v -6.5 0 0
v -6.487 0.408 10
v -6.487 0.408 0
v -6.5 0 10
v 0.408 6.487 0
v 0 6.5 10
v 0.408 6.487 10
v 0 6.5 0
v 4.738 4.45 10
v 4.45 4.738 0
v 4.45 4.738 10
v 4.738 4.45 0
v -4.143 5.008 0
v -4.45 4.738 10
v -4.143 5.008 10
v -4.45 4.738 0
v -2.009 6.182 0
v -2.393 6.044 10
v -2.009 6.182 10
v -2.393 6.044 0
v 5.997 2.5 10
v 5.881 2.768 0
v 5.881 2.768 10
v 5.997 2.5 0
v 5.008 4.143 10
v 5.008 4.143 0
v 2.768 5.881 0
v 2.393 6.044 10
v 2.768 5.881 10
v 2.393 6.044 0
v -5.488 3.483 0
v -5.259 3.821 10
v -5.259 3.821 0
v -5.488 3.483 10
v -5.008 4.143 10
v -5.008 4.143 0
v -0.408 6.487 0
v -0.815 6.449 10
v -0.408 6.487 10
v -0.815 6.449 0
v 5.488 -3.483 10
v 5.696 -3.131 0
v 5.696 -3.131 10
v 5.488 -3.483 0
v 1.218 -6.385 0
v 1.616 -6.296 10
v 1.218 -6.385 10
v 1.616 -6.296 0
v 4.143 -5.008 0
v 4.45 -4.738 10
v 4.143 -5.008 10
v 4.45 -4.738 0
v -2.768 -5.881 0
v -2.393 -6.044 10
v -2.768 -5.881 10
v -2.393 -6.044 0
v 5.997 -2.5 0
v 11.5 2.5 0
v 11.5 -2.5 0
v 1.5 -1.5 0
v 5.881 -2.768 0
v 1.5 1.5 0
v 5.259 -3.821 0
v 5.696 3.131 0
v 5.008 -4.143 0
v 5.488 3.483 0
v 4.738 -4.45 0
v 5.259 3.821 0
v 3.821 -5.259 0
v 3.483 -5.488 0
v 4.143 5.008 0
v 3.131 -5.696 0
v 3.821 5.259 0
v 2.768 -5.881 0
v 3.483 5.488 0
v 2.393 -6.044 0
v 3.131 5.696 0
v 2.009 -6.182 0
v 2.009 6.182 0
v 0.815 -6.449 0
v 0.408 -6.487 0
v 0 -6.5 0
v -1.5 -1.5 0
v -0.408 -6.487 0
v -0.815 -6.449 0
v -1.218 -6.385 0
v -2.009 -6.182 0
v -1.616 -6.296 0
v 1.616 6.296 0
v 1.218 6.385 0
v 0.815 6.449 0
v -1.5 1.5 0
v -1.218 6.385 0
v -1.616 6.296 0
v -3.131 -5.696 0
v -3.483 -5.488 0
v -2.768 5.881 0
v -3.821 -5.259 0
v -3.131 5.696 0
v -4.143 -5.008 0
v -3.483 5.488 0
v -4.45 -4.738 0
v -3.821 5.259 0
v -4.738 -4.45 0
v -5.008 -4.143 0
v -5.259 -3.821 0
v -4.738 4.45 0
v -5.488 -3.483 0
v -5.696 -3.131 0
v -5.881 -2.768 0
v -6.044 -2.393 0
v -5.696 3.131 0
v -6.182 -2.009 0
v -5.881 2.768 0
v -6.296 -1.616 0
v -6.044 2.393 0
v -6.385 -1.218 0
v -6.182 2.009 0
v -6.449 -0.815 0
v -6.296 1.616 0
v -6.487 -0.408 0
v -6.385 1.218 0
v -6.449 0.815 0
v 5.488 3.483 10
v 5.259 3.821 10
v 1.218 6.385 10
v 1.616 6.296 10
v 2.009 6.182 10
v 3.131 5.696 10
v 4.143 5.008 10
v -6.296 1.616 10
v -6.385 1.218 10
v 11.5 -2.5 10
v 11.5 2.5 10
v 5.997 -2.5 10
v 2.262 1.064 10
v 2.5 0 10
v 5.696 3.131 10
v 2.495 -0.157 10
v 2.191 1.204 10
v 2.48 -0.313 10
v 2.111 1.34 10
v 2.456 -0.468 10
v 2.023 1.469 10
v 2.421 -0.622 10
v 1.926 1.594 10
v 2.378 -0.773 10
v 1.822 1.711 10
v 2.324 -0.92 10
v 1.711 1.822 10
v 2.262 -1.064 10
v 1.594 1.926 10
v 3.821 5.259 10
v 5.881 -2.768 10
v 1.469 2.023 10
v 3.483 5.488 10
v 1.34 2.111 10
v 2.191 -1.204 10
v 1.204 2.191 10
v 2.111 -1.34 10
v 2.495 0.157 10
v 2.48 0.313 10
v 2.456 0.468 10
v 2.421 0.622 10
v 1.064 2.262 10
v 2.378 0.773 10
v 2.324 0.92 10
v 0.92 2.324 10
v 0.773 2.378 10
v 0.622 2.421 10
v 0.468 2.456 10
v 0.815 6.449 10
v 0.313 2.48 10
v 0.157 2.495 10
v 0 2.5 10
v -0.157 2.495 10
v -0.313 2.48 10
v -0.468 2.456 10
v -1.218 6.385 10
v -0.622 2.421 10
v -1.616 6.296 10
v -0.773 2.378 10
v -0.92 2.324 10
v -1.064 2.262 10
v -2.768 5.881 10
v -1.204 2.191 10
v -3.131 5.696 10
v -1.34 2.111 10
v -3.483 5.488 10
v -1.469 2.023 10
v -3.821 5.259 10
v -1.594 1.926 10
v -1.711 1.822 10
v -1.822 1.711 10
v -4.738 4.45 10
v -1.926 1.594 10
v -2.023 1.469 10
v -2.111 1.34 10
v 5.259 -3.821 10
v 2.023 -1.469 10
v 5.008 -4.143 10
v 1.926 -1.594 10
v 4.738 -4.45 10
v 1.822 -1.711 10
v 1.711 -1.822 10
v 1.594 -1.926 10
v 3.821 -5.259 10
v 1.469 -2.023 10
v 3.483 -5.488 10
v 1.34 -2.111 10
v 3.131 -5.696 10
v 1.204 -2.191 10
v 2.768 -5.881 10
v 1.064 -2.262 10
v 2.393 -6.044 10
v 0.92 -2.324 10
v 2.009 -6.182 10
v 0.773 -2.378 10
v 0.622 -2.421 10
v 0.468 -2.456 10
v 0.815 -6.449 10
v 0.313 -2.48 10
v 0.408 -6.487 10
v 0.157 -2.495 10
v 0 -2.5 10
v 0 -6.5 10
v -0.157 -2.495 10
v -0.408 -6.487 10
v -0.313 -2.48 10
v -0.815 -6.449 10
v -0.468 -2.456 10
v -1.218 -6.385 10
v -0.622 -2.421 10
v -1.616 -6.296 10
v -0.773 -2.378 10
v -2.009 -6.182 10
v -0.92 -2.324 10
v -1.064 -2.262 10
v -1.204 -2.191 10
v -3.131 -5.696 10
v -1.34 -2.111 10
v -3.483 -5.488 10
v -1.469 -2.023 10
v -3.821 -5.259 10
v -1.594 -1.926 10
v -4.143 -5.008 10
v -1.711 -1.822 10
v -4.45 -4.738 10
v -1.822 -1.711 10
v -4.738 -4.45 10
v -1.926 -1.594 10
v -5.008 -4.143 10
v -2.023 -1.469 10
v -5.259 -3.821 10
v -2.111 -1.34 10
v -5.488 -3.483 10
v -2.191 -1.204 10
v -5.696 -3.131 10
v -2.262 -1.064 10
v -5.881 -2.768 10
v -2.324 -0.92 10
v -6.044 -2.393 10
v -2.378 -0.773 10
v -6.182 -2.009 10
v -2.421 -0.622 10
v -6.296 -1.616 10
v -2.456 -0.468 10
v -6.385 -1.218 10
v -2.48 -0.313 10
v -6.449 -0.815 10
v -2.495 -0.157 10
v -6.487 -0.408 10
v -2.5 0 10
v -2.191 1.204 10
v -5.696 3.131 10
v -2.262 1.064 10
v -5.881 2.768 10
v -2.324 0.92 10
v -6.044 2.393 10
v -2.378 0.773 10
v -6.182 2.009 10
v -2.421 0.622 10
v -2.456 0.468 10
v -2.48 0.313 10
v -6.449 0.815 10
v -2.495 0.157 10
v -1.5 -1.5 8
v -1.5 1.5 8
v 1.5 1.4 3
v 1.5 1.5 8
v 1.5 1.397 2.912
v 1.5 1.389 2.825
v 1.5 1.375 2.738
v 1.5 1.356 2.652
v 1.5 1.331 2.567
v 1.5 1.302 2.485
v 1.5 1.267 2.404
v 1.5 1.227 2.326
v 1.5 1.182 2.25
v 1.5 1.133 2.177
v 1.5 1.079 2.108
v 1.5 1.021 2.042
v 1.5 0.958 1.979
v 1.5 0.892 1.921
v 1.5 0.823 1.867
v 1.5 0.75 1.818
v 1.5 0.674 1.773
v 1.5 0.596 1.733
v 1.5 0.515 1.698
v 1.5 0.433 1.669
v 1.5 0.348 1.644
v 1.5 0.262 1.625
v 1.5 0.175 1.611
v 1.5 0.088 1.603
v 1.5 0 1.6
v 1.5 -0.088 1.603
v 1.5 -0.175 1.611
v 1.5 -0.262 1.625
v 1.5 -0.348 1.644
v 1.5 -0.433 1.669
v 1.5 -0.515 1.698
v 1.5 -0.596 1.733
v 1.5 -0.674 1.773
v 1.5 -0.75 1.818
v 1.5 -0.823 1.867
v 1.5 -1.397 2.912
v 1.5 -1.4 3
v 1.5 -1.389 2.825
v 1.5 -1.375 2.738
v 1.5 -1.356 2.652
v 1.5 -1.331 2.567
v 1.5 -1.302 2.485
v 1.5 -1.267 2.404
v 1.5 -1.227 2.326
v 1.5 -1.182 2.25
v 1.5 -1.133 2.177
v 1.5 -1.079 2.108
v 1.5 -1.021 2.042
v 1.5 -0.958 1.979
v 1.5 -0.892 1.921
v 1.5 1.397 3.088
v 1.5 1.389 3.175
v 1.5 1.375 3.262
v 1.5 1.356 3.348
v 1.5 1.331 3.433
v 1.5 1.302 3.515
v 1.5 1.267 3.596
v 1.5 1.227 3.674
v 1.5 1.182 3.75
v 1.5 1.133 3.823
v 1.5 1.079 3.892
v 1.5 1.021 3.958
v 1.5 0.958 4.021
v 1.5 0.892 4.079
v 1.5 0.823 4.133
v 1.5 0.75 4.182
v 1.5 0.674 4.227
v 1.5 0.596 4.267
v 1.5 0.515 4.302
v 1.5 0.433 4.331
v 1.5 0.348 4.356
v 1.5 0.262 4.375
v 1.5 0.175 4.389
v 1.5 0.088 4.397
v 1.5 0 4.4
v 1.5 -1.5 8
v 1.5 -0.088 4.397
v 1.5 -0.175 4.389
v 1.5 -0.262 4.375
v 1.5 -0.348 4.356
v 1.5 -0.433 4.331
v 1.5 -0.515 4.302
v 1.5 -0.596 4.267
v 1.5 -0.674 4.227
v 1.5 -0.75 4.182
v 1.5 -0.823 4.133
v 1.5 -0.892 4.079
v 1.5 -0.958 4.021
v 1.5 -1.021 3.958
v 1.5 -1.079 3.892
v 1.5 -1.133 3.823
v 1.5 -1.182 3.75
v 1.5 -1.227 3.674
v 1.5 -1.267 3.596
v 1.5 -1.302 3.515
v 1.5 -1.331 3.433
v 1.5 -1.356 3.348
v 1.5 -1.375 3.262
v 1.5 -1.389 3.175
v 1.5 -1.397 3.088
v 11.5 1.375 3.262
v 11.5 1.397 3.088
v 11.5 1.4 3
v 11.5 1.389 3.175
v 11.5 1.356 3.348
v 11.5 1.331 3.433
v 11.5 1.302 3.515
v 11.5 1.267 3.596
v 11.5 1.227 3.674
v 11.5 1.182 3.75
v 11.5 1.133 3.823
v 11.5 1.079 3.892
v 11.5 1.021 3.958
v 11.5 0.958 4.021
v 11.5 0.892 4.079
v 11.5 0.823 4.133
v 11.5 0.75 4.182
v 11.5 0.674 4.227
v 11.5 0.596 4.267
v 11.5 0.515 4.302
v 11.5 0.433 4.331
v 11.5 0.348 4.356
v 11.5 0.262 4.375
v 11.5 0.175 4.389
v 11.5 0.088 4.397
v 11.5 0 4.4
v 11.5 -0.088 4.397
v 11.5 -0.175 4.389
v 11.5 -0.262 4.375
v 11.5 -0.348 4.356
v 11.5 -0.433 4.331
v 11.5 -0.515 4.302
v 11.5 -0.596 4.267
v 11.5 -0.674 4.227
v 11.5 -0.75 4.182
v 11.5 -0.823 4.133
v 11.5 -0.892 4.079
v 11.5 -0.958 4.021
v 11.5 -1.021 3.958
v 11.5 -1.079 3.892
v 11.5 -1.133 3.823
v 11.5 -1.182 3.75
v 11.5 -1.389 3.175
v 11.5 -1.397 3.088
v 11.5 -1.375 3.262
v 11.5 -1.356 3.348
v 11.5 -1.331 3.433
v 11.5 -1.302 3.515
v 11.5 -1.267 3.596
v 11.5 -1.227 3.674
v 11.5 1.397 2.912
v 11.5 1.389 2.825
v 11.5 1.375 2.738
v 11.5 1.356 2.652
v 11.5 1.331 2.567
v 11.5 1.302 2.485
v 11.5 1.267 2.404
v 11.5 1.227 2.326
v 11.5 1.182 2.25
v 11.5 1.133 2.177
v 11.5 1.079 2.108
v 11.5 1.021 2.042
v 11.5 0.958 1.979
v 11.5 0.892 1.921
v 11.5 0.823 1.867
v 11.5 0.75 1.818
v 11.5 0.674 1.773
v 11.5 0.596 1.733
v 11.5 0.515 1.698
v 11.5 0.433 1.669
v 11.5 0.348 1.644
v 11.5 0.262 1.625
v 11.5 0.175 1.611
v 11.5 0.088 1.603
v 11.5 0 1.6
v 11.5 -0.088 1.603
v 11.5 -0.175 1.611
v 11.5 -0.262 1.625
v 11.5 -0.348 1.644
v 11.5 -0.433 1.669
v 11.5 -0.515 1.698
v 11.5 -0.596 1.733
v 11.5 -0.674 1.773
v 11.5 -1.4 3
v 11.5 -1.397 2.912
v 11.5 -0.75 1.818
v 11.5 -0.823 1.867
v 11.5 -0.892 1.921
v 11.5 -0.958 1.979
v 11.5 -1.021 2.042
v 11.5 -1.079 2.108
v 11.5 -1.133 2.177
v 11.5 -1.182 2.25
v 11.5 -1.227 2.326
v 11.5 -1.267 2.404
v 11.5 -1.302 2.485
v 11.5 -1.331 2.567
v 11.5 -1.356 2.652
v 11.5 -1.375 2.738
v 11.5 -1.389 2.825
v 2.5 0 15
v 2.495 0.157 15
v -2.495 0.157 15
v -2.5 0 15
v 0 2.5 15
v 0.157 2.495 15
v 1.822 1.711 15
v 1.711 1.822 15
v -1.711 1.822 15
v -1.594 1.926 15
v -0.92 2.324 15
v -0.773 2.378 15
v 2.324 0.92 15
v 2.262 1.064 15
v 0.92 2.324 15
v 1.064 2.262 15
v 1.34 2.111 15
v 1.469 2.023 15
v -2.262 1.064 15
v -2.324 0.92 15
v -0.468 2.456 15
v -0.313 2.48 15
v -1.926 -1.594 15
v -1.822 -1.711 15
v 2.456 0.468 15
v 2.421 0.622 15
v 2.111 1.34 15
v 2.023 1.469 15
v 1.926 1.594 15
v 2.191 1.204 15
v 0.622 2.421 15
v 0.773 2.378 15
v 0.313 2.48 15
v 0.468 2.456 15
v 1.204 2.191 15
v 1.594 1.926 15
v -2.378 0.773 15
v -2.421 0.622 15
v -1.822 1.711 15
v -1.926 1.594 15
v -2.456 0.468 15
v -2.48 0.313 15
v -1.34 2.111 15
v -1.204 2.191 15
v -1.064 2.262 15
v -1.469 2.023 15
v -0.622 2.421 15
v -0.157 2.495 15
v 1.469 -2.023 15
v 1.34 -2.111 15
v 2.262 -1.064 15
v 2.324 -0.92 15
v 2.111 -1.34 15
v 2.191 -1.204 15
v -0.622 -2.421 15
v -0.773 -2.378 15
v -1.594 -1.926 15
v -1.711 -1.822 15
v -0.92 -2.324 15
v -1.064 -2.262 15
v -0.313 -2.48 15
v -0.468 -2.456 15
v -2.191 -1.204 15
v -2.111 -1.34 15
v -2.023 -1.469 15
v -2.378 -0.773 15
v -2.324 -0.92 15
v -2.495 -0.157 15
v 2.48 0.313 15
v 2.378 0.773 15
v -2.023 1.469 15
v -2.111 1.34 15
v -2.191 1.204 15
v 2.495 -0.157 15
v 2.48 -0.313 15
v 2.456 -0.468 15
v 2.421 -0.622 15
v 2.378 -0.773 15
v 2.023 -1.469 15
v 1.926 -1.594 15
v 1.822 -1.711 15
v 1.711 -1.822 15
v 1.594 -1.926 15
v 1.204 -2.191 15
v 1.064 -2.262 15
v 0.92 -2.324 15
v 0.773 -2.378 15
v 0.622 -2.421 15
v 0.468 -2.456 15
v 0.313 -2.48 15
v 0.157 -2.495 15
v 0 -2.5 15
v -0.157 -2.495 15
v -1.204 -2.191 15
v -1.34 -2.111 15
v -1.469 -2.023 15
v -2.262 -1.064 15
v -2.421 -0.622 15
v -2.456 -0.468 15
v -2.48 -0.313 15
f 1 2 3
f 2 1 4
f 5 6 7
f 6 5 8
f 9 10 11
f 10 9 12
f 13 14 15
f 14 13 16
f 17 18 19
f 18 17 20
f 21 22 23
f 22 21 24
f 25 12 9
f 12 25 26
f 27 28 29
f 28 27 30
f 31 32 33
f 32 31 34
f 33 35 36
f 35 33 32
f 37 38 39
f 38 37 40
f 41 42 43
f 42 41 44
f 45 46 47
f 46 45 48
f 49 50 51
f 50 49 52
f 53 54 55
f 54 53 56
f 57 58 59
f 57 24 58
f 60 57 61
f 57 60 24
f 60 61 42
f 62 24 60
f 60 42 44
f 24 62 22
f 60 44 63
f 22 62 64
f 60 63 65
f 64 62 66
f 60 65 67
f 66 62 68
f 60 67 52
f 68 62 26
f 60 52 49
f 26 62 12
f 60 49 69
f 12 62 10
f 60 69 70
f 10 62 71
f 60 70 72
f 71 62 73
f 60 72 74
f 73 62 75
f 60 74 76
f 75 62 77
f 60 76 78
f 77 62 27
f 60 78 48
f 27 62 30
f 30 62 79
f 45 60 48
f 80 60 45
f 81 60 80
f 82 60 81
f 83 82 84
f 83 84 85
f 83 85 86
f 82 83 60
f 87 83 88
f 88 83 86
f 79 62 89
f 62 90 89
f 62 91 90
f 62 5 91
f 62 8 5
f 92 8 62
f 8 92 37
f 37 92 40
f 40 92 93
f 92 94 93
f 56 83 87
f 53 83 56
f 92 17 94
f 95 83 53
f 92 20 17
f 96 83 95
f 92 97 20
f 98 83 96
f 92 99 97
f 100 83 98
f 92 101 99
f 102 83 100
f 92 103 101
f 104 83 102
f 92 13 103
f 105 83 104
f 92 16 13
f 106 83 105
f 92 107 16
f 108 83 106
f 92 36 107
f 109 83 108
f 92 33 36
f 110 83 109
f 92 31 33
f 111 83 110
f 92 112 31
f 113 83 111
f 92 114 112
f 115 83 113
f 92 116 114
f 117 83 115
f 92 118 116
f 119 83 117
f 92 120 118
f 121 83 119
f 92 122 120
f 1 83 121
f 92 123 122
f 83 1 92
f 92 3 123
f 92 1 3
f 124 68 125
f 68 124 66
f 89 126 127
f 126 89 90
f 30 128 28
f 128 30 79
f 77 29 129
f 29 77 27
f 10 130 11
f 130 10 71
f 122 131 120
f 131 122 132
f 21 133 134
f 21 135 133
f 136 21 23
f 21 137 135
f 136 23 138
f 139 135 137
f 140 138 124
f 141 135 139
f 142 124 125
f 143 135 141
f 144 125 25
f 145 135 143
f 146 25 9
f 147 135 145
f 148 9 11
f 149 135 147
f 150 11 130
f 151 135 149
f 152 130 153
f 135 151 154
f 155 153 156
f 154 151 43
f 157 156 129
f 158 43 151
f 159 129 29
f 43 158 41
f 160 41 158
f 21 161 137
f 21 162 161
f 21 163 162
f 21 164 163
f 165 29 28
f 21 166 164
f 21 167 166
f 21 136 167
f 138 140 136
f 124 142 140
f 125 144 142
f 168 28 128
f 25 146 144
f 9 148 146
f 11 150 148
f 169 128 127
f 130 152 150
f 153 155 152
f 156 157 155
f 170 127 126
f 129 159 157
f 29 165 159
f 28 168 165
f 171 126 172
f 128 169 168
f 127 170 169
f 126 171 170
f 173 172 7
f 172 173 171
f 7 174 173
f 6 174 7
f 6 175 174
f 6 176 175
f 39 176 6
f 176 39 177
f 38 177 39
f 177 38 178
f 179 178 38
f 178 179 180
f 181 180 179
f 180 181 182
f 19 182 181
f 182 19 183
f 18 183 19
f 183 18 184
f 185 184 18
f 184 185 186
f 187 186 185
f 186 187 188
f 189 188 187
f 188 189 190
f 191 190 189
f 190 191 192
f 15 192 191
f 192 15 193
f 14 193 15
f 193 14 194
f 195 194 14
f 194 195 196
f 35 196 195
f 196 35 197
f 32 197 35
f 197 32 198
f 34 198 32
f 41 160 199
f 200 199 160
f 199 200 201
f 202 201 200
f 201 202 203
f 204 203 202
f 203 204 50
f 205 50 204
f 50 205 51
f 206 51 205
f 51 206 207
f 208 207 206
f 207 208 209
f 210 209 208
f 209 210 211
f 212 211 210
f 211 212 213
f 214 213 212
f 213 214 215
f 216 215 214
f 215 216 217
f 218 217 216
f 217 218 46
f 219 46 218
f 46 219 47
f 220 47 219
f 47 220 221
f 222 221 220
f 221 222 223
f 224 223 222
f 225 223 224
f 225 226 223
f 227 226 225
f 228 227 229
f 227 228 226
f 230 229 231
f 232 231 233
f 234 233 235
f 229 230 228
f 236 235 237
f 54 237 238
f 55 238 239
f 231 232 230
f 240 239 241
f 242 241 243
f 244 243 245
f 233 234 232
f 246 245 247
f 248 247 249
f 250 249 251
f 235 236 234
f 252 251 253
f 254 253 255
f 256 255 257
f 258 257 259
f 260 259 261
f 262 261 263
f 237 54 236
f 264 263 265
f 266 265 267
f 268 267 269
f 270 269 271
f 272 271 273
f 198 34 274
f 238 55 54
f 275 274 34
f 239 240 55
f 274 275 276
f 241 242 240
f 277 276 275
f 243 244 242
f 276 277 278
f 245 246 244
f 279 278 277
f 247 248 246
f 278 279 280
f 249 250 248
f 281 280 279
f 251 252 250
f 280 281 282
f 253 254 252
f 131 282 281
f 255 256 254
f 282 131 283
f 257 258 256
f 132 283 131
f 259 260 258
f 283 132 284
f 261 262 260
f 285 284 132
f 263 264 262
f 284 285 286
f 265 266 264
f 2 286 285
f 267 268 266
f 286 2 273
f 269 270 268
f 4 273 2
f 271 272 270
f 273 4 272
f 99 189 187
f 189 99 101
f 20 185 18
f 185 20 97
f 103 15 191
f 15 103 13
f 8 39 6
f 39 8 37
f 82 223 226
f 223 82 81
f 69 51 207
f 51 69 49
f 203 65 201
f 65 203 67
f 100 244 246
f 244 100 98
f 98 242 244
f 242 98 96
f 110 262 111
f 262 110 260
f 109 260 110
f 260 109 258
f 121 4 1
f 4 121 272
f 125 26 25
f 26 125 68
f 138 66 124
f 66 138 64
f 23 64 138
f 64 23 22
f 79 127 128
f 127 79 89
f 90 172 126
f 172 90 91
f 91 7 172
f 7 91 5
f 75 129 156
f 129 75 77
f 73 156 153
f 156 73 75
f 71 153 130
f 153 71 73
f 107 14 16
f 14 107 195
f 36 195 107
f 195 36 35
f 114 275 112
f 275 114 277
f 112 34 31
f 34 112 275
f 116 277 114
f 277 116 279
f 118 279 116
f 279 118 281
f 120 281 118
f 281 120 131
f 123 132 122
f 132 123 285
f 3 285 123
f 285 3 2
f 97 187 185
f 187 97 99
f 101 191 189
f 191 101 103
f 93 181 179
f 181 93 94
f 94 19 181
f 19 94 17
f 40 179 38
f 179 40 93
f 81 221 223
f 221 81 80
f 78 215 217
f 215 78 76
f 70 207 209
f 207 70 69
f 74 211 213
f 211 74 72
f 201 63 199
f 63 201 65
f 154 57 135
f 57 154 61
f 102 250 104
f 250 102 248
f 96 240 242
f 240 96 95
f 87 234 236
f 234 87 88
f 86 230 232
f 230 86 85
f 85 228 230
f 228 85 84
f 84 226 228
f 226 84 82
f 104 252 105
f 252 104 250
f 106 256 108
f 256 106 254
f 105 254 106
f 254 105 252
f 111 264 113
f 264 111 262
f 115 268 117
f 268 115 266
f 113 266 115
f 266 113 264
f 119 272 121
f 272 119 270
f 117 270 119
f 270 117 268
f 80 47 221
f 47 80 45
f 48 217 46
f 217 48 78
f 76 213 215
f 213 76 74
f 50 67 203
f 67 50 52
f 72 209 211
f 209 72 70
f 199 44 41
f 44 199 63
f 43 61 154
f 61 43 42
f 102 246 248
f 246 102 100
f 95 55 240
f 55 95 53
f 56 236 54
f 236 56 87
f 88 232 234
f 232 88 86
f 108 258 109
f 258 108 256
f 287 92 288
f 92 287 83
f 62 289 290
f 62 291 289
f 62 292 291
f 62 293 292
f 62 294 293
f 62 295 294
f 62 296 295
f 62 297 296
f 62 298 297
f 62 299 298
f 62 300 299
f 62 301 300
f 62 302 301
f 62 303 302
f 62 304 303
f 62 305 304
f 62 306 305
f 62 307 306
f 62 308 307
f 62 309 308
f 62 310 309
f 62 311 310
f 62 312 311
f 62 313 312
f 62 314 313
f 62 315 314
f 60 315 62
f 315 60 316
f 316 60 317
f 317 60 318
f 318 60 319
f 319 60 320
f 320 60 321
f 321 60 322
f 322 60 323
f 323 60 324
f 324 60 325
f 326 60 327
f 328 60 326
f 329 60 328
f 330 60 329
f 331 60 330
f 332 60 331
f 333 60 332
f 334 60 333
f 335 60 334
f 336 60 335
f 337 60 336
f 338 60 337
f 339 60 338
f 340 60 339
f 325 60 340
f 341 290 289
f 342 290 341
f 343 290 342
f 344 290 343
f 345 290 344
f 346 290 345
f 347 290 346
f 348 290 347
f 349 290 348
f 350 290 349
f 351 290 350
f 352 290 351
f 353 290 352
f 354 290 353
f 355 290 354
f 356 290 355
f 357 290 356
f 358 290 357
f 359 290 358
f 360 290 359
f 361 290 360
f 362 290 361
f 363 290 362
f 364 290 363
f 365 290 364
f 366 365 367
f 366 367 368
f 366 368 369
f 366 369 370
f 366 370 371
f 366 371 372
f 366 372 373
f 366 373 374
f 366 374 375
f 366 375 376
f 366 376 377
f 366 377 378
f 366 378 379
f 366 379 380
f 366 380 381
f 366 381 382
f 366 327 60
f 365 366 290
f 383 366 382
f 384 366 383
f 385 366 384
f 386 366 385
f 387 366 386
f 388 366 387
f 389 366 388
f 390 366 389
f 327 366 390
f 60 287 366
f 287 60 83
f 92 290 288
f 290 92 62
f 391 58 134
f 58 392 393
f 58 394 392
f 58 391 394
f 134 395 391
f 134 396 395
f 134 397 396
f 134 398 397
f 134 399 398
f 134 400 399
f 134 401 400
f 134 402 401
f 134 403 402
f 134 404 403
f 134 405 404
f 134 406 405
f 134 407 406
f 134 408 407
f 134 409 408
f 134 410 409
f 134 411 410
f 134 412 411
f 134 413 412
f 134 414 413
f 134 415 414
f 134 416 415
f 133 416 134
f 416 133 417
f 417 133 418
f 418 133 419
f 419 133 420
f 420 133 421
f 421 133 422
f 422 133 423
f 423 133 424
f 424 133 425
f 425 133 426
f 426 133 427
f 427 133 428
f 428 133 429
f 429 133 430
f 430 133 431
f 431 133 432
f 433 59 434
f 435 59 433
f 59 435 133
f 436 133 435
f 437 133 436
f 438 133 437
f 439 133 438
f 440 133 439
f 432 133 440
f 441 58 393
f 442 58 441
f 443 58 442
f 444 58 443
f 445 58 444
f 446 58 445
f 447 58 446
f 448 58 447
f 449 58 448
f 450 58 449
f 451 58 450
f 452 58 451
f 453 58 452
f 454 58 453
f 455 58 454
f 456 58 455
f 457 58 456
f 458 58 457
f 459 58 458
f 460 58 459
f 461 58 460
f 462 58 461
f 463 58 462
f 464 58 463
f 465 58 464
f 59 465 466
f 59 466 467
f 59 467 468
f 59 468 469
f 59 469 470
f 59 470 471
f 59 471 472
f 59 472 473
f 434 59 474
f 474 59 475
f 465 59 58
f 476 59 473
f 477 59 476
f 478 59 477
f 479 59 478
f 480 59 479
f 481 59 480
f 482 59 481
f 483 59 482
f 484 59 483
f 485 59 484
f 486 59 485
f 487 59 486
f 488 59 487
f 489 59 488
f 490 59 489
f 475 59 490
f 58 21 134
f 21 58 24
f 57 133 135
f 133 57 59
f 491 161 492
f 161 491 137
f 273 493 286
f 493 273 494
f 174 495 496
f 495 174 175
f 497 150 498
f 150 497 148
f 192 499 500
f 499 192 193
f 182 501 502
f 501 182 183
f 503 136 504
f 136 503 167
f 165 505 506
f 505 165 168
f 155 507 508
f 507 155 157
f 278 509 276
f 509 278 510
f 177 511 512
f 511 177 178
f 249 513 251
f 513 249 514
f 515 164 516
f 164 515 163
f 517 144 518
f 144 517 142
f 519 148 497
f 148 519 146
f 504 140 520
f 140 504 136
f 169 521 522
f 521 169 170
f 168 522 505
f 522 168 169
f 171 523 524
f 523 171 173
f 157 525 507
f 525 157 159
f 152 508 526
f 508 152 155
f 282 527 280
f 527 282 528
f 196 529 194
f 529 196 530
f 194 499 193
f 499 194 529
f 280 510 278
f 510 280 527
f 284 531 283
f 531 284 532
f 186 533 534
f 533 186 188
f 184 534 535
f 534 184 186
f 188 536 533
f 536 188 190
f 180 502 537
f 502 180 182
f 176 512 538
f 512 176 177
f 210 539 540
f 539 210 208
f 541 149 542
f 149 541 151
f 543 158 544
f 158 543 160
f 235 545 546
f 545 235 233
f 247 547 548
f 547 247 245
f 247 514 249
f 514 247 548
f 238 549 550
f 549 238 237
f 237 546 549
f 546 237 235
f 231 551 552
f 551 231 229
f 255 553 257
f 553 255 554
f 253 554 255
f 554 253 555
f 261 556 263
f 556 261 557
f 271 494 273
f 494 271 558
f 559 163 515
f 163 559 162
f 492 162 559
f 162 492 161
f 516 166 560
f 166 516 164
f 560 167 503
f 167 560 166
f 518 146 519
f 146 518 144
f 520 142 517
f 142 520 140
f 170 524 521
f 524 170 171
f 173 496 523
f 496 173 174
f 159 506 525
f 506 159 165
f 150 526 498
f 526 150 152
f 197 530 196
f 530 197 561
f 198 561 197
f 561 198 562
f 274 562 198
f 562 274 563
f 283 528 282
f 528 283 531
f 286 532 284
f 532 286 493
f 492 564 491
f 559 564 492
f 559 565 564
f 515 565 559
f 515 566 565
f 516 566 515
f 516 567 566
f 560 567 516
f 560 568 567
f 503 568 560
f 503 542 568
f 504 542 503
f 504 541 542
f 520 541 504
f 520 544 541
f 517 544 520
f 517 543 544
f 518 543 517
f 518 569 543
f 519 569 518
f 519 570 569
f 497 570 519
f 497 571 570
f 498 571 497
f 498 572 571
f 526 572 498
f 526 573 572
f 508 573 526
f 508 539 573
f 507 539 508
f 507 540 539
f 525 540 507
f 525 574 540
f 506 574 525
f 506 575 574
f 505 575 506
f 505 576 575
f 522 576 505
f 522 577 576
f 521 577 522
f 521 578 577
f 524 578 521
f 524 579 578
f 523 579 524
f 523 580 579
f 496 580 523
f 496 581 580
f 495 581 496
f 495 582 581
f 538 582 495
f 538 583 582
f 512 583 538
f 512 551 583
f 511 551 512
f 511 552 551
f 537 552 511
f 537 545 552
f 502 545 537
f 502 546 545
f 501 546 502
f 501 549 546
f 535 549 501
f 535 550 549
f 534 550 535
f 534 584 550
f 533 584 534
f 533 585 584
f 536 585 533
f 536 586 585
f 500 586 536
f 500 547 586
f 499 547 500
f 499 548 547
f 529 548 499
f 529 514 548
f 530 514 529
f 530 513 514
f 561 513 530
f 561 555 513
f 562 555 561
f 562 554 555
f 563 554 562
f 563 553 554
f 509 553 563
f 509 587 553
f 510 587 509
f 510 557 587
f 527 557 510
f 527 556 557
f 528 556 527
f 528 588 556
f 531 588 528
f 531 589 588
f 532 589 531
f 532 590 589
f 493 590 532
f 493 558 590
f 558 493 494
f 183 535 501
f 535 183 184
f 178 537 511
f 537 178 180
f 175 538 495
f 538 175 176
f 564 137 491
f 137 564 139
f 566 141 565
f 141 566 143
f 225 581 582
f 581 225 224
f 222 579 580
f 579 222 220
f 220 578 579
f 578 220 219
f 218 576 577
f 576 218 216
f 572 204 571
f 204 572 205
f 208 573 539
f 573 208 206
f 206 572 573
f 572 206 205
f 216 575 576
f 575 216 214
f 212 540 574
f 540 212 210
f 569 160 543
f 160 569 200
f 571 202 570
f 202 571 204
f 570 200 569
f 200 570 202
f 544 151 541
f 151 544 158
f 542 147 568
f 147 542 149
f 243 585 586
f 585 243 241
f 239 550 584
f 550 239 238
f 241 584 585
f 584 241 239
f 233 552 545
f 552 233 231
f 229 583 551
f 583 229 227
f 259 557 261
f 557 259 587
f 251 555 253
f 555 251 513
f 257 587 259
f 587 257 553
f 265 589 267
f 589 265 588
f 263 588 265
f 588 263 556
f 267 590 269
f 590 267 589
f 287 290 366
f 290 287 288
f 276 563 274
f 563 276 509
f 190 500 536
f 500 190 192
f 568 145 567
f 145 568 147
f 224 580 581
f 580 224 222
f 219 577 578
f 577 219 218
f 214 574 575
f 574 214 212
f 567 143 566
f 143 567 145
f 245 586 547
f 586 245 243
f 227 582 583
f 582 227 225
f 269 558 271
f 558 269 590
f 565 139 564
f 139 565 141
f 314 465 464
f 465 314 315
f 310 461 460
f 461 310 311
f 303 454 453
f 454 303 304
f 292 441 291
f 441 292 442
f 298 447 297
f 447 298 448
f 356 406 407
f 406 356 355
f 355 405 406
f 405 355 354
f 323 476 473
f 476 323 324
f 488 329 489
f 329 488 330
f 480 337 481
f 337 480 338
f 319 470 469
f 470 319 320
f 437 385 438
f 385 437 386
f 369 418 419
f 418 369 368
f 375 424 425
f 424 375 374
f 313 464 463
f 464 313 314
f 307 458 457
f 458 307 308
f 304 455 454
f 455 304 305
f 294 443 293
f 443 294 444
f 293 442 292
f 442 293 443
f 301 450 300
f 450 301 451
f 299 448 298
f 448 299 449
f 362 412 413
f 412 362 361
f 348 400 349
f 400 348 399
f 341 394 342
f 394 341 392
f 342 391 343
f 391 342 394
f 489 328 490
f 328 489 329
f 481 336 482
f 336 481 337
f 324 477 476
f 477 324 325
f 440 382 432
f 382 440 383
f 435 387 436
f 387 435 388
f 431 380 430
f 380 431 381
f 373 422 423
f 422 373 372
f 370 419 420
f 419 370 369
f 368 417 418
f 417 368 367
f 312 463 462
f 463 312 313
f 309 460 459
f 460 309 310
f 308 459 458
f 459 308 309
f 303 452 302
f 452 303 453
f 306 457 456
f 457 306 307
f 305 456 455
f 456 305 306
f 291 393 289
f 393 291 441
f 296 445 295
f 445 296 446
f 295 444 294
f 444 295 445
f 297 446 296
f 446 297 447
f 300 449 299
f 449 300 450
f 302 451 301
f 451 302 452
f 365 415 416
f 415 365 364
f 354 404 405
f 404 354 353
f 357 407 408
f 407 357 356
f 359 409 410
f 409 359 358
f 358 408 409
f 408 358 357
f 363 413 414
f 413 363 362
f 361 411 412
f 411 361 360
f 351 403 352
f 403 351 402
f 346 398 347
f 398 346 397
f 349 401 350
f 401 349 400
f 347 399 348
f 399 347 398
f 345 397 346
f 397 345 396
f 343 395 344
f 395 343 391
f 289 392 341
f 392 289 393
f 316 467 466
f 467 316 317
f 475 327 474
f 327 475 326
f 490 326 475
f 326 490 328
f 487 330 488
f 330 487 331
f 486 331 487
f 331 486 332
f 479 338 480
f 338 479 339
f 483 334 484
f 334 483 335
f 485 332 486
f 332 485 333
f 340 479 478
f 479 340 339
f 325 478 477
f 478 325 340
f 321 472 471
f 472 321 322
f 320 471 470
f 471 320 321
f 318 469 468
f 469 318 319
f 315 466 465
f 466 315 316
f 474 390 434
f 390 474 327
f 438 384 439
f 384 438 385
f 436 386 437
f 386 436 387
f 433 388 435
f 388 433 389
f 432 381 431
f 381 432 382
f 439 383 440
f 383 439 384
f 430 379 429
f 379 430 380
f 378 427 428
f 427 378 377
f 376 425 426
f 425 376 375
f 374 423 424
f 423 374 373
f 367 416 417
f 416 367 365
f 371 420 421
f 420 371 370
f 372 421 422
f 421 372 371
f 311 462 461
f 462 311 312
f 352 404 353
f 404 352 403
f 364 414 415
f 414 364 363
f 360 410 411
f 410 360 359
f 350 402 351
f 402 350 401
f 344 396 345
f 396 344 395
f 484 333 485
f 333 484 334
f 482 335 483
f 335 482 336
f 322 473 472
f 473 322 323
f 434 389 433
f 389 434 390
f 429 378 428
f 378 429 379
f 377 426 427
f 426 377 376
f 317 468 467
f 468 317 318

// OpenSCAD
// Antriebsstück

difference() {
union() {
  difference() {
    cylinder(h=10, r=6.5, $fn=100);
    translate([-1.5, -1.5, -1]) cube([3,3,20]);
  }
  translate([5,-2.5,0]) cube([6.5,5,10]);
  translate([0,0,8]) cylinder(h=7, r=2.5, $fn=100);
}

translate([0,0,3]) rotate([0,90,0]) cylinder(h=20, r=1.4, $fn=100);
}
